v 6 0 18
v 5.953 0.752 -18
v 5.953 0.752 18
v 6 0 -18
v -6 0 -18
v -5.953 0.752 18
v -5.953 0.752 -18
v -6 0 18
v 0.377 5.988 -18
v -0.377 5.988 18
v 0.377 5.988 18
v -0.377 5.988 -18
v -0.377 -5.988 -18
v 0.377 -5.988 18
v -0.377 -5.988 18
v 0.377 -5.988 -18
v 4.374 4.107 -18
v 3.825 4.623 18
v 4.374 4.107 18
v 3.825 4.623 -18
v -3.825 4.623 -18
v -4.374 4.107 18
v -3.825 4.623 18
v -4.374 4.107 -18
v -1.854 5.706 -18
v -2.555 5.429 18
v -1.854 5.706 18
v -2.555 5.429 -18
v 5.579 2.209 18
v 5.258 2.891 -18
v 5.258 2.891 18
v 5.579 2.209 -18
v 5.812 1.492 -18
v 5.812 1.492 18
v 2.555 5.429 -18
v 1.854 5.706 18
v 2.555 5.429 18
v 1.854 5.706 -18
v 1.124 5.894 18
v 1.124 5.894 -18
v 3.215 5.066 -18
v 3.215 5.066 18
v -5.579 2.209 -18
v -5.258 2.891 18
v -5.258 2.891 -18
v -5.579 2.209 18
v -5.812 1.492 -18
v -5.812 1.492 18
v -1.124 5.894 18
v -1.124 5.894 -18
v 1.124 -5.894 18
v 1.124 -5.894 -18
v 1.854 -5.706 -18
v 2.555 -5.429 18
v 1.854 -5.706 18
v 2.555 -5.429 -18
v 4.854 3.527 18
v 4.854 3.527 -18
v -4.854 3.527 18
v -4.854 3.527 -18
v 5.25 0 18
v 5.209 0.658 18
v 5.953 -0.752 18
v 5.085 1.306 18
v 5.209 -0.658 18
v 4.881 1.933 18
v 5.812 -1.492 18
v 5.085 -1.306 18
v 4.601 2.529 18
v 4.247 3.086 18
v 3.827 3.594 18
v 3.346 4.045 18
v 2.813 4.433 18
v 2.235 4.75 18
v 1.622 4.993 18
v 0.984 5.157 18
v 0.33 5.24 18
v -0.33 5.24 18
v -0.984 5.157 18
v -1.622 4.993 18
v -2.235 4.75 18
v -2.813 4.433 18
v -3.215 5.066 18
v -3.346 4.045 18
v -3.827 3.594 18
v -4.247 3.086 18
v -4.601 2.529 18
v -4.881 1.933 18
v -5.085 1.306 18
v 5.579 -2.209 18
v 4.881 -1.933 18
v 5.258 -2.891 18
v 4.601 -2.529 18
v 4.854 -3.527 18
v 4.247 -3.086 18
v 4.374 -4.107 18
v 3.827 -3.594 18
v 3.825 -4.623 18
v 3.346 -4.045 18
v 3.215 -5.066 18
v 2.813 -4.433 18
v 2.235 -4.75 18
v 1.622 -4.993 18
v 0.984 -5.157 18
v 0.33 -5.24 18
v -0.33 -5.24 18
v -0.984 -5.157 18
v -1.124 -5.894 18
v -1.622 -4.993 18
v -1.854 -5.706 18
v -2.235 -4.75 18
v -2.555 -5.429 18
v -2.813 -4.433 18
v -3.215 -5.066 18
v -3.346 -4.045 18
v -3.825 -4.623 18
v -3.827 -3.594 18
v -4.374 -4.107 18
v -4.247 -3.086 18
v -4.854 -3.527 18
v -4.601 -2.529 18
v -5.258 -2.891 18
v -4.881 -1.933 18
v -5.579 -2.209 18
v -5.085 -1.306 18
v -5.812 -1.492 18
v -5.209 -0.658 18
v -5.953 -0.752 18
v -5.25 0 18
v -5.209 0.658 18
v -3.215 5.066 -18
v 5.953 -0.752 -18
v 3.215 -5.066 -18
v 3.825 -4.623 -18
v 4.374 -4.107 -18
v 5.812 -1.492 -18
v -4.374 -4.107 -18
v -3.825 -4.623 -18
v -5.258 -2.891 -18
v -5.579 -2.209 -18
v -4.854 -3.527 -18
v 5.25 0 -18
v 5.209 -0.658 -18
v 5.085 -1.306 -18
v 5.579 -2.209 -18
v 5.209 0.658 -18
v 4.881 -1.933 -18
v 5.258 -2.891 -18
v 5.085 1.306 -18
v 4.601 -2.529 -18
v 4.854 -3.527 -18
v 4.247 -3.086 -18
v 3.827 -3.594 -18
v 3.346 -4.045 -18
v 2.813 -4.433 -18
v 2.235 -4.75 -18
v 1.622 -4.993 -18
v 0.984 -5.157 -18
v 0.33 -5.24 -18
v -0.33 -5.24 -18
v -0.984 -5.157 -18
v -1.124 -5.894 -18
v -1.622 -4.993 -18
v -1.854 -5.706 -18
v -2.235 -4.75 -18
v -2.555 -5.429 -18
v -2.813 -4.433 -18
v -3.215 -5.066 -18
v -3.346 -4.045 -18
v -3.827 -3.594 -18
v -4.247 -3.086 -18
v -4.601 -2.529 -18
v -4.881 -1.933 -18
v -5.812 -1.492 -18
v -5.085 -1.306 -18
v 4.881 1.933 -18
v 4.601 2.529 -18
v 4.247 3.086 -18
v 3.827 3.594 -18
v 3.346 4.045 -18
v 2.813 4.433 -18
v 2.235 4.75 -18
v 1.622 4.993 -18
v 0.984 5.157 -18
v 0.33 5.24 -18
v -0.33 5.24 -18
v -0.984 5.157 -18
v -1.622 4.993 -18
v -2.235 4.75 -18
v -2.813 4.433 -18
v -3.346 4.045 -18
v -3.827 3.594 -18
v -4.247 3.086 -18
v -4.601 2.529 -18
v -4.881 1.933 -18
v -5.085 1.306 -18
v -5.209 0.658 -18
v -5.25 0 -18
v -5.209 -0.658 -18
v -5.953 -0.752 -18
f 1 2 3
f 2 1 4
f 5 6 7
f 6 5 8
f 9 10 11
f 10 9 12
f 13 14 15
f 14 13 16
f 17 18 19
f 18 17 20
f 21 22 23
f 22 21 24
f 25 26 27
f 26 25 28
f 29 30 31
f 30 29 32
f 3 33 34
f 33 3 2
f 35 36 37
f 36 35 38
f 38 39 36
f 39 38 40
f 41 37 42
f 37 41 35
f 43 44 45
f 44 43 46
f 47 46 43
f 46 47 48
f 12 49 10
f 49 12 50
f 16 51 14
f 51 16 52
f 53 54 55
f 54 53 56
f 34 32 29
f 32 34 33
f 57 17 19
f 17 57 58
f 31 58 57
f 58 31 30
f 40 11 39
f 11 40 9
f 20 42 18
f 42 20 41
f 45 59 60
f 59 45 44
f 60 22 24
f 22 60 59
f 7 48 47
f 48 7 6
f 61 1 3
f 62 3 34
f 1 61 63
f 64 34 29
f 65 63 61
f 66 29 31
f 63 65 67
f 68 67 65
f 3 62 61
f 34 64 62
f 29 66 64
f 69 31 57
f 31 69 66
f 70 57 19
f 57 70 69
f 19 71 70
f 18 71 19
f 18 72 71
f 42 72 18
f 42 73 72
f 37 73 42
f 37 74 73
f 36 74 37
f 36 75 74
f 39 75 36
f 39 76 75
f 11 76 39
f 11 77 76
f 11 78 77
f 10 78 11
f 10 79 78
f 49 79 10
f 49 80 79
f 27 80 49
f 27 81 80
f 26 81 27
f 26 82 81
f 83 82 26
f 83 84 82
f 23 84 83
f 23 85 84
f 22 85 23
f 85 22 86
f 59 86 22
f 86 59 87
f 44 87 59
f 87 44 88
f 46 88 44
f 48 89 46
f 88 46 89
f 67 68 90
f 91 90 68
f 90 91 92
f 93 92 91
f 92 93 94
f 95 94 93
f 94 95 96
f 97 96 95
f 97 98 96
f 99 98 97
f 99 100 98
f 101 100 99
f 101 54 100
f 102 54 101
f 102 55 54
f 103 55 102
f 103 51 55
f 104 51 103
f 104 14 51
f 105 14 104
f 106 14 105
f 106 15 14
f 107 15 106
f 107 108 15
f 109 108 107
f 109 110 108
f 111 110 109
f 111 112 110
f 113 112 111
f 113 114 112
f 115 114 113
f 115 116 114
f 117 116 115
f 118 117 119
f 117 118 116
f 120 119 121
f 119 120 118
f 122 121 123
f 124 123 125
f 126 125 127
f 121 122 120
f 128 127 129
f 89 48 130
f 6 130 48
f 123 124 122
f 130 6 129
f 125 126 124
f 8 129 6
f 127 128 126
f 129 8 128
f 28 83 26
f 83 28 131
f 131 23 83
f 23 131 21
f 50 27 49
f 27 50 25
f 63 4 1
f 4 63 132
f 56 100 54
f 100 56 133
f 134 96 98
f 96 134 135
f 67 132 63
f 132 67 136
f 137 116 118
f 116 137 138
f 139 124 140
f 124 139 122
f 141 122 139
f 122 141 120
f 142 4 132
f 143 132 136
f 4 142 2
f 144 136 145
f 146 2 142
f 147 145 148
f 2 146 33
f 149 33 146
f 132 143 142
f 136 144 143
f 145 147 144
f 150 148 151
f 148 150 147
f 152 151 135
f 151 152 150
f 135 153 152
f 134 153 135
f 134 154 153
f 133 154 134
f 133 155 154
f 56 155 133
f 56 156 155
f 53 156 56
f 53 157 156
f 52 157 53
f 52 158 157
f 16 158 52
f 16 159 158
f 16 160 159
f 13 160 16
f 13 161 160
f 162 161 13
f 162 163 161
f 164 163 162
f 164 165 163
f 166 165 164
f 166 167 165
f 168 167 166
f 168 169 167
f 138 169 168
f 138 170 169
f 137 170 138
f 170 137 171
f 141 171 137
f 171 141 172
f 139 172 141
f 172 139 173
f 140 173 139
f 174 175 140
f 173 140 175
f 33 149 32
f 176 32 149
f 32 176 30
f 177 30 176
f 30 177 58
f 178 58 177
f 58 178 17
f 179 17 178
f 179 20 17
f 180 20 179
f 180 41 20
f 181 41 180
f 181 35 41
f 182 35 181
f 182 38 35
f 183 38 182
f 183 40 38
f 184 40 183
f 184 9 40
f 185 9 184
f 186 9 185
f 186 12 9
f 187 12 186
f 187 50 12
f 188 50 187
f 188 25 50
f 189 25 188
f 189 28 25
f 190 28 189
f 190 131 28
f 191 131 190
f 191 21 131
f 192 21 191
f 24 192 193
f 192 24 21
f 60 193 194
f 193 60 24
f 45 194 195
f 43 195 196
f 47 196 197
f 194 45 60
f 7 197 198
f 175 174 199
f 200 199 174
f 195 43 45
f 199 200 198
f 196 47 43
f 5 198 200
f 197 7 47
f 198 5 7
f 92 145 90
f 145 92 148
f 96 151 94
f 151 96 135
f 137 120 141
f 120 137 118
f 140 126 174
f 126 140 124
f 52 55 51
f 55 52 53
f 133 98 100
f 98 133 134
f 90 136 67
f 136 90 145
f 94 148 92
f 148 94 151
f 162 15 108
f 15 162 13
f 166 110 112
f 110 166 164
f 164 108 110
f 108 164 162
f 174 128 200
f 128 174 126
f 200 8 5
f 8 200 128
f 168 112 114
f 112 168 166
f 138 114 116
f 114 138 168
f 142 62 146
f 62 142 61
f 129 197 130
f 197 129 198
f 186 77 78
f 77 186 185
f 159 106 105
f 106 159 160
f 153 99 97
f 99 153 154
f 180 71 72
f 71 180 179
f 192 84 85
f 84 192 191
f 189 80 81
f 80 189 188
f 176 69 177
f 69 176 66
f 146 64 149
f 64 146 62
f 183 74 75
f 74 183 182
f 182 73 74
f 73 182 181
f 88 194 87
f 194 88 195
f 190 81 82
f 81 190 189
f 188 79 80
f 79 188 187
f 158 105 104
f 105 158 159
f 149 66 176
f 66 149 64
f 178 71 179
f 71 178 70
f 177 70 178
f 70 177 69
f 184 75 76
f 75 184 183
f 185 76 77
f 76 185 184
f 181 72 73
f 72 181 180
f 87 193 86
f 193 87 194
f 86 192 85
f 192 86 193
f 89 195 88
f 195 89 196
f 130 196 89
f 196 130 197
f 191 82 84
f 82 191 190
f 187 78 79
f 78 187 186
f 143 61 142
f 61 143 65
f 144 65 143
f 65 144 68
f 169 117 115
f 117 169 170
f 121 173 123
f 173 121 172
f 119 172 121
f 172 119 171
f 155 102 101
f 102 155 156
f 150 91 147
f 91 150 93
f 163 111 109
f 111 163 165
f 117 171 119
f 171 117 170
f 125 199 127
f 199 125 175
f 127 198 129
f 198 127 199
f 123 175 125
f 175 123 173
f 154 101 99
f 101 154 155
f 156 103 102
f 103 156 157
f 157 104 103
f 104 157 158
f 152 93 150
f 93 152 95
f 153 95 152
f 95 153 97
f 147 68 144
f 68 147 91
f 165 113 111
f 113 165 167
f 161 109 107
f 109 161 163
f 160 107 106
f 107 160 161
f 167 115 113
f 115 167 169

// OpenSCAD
$fn = 50;


difference() {
	union() {
		translate(v = [0, 0, -18.0000000000]) {
			cylinder(h = 36, r = 6.0000000000);
		}
	}
	union() {
		translate(v = [0, 0, -100.0000000000]) {
			cylinder(h = 200, r = 5.2500000000);
		}
	}
}
